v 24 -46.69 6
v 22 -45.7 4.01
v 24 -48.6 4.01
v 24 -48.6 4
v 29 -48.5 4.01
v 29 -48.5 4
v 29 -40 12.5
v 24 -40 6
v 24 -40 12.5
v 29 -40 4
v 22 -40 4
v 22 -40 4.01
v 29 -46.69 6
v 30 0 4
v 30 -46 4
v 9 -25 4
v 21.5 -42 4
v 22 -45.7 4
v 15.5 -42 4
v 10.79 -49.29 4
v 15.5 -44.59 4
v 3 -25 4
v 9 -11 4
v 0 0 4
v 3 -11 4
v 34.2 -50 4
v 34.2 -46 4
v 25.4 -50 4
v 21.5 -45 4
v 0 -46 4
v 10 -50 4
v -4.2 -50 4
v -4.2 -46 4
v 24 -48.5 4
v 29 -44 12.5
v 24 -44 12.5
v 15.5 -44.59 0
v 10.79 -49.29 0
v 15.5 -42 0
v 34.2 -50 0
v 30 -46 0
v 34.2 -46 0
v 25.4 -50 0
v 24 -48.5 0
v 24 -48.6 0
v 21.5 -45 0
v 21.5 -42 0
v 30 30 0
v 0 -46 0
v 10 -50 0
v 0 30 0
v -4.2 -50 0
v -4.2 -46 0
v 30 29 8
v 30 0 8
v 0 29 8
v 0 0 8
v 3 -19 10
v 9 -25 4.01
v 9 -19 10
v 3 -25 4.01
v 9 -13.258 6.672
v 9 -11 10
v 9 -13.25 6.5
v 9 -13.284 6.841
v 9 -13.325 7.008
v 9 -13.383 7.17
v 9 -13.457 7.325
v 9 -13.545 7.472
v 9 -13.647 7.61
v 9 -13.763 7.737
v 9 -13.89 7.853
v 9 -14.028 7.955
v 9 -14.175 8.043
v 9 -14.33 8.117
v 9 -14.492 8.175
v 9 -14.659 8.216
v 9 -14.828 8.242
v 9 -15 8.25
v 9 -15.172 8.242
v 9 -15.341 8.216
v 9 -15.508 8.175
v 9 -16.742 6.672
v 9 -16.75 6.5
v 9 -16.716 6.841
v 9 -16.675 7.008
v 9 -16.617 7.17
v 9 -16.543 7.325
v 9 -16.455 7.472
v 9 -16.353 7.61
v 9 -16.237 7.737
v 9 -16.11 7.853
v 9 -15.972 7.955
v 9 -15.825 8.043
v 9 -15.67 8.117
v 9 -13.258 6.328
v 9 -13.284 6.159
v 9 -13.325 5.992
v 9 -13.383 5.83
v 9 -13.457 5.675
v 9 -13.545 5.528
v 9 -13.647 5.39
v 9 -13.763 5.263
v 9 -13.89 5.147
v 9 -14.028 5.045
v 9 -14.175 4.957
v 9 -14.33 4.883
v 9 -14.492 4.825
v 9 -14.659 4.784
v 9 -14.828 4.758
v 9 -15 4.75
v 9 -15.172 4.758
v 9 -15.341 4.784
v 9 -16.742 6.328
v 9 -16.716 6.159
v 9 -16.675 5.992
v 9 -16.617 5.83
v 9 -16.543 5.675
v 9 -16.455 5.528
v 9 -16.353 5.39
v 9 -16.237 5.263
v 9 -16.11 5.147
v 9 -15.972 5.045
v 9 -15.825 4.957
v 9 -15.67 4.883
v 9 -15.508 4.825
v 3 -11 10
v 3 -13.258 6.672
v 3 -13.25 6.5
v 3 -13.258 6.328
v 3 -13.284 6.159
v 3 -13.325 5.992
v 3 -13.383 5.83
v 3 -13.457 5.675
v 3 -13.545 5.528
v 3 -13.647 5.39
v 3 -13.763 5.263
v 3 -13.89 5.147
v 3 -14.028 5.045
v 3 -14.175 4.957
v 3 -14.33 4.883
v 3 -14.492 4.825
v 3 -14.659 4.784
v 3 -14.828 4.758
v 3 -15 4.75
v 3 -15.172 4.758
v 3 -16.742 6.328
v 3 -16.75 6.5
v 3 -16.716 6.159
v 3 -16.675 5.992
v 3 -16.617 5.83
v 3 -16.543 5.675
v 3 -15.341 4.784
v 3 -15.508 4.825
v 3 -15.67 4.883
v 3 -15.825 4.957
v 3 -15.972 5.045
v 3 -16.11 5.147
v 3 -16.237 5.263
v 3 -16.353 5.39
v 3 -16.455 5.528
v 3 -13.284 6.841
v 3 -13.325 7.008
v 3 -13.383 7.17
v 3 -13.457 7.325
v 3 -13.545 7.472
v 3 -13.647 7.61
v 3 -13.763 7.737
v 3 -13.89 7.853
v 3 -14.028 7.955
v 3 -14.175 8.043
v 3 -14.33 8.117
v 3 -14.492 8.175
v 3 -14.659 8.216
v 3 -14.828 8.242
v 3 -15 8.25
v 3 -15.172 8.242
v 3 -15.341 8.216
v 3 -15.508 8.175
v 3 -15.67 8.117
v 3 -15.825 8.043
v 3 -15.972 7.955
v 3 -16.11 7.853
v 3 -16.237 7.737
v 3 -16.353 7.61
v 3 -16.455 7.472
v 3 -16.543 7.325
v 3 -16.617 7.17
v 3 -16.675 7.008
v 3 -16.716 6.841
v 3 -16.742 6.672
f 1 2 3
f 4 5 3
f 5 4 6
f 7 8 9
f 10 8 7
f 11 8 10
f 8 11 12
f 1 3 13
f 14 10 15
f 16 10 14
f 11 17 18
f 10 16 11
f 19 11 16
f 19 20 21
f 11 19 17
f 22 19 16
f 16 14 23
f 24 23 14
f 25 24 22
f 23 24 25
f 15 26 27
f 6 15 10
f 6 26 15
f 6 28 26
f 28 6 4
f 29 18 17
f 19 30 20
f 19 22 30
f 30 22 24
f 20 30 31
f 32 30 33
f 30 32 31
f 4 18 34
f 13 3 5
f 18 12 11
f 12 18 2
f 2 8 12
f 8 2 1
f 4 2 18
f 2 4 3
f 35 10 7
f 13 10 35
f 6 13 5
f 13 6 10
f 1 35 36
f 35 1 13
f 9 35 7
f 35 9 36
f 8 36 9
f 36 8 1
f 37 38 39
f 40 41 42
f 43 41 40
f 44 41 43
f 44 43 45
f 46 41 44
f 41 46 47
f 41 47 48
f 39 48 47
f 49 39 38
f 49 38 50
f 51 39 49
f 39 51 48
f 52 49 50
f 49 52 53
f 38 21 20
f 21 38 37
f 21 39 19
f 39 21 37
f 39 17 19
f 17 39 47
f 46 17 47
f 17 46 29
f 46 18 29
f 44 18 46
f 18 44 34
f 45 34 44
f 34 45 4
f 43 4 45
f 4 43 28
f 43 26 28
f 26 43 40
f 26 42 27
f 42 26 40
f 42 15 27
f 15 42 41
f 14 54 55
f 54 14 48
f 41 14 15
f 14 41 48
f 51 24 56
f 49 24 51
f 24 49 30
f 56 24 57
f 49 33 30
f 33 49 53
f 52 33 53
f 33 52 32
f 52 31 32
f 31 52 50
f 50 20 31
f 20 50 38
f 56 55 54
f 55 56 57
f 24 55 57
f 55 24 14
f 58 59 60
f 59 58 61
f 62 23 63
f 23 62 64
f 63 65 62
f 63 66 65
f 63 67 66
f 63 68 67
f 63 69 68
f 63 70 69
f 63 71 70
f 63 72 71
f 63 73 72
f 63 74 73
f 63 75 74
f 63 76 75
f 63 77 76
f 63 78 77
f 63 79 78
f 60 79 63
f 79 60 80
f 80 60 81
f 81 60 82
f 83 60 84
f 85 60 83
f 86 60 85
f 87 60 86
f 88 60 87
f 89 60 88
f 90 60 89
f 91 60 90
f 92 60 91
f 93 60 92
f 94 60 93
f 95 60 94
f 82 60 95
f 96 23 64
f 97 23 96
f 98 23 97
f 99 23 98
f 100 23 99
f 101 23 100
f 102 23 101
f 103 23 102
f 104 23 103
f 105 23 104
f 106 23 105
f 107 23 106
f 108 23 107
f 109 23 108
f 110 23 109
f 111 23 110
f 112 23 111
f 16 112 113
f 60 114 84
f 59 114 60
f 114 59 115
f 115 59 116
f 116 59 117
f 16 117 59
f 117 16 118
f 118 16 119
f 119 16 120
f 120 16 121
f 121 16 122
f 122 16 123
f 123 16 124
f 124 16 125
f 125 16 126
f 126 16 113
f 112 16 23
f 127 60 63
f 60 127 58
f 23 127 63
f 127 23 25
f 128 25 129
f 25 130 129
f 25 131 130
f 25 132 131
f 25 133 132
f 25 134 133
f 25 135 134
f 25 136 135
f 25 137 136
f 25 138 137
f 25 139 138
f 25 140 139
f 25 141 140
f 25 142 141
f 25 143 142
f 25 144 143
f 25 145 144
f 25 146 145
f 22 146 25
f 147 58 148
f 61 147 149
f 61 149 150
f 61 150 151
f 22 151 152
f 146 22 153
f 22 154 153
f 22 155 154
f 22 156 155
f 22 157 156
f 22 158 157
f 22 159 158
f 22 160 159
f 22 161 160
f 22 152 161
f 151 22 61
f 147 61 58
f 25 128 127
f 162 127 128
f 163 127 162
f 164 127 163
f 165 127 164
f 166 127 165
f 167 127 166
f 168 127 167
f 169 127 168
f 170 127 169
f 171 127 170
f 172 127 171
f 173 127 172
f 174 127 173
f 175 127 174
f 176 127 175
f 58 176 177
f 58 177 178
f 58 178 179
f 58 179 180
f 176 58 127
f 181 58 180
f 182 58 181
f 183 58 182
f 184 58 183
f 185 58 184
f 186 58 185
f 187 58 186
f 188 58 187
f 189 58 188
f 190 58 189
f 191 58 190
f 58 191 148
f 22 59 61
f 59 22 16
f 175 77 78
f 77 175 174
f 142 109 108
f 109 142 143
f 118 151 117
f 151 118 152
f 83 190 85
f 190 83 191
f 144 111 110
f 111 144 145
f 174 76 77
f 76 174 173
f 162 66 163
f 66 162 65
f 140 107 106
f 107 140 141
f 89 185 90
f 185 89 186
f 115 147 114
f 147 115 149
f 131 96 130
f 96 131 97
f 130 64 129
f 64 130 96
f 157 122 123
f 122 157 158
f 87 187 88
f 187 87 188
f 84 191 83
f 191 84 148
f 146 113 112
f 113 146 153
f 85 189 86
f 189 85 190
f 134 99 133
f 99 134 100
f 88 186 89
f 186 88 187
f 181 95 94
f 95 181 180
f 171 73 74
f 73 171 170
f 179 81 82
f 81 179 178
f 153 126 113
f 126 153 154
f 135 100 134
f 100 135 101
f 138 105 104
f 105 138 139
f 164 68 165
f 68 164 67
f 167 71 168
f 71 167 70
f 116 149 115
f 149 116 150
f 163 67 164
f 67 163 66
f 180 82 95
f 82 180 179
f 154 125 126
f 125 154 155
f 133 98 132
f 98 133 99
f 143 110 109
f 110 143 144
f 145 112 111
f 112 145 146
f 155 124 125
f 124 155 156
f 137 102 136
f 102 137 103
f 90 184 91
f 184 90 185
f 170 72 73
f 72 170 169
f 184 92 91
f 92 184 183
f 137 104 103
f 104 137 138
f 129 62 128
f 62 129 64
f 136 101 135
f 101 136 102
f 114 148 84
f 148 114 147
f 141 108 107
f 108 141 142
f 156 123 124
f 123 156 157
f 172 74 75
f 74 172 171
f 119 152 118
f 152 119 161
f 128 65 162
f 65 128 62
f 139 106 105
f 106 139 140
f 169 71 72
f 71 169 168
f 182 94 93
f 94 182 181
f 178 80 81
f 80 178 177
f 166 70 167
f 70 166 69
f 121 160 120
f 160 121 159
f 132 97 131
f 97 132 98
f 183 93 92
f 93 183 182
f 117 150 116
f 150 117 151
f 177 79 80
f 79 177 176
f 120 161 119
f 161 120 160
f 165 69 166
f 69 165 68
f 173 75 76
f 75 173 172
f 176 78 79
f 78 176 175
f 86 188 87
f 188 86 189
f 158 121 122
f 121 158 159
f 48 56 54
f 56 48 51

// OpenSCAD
include <parameters.scad>

// Alvo convertido de references/target.stl.
//
// Orientação idêntica à do STL (deitado, como é impresso):
//   X = largura (30 mm no vão + orelhas)   Y = comprimento   Z = espessura
// A cabeça visível fica em Y de 0 a 30; a haste desce até Y = -50.

// Contorno da haste e da cabeça, medido na base da peça (Z = 0).
target_footprint = [
    [0, target_head_height],
    [target_width, target_head_height],
    [target_width, target_tab_span[1]],
    [target_width + target_tab_width, target_tab_span[1]],
    [target_width + target_tab_width, target_tab_span[0]],
    [25.4, -50], [24, -48.6], [24, -48.5],
    [21.5, -45], [21.5, -42], [15.5, -42], [15.5, -44.59],
    [10.79, -49.29], [10, -50],
    [-target_tab_width, target_tab_span[0]],
    [-target_tab_width, target_tab_span[1]],
    [0, target_tab_span[1]]
];

// Base do pino do microswitch, com o alargamento chanfrado.
target_pin_base = [
    [target_pin_x[1], -40], [22, -40], [22, -45.7],
    [24, -48.6], [24, -48.5], [target_pin_x[1], -48.5]
];

// Placa fina usada nas transições em hull().
module target_layer(points, z) {
    translate([0, 0, z])
        linear_extrude(height = epsilon)
            polygon(points);
}

module target_knot_block() {
    hull() {
        target_layer([
            [target_knot_x[0], target_knot_base_y[0]],
            [target_knot_x[1], target_knot_base_y[0]],
            [target_knot_x[1], target_knot_base_y[1]],
            [target_knot_x[0], target_knot_base_y[1]]
        ], target_knot_z[0]);

        target_layer([
            [target_knot_x[0], target_knot_top_y[0]],
            [target_knot_x[1], target_knot_top_y[0]],
            [target_knot_x[1], target_knot_top_y[1]],
            [target_knot_x[0], target_knot_top_y[1]]
        ], target_knot_z[1] - epsilon);
    }
}

module target_pin() {
    // Alargamento de 45° na saída da haste.
    hull() {
        target_layer(target_pin_base, target_plate_thickness);
        target_layer([
            [target_pin_x[0], -40], [target_pin_x[1], -40],
            [target_pin_x[1], -46.69], [target_pin_x[0], -46.69]
        ], 6 - epsilon);
    }

    // Corpo do pino, com a face inclinada que sobe até o topo.
    hull() {
        target_layer([
            [target_pin_x[0], -40], [target_pin_x[1], -40],
            [target_pin_x[1], -46.69], [target_pin_x[0], -46.69]
        ], 6 - epsilon);
        target_layer([
            [target_pin_x[0], -40], [target_pin_x[1], -40],
            [target_pin_x[1], -44], [target_pin_x[0], -44]
        ], target_pin_top_z - epsilon);
    }
}

module target() {
    difference() {
        union() {
            linear_extrude(height = target_plate_thickness)
                polygon(target_footprint);

            // Cabeça, mais espessa que a haste.
            linear_extrude(height = target_head_thickness)
                square([target_width, target_head_height]);

            target_knot_block();
            target_pin();
        }

        // Furo do fio que liga o alvo ao braço do servo.
        translate([
            target_knot_x[0] - epsilon,
            target_knot_hole_center[0],
            target_knot_hole_center[1]
        ])
            rotate([0, 90, 0])
                cylinder(
                    d = target_knot_hole_diameter,
                    h = target_knot_x[1] - target_knot_x[0] + 2 * epsilon
                );

        // Saída de molde da face frontal: recua target_head_draft ao longo
        // da espessura da cabeça.
        translate([0, target_head_height, 0])
            rotate([atan(target_head_draft / target_head_thickness), 0, 0])
                translate([-10, 0, -20])
                    cube([target_width + 20, 20, 60]);
    }
}

scale(target_scale) target();
